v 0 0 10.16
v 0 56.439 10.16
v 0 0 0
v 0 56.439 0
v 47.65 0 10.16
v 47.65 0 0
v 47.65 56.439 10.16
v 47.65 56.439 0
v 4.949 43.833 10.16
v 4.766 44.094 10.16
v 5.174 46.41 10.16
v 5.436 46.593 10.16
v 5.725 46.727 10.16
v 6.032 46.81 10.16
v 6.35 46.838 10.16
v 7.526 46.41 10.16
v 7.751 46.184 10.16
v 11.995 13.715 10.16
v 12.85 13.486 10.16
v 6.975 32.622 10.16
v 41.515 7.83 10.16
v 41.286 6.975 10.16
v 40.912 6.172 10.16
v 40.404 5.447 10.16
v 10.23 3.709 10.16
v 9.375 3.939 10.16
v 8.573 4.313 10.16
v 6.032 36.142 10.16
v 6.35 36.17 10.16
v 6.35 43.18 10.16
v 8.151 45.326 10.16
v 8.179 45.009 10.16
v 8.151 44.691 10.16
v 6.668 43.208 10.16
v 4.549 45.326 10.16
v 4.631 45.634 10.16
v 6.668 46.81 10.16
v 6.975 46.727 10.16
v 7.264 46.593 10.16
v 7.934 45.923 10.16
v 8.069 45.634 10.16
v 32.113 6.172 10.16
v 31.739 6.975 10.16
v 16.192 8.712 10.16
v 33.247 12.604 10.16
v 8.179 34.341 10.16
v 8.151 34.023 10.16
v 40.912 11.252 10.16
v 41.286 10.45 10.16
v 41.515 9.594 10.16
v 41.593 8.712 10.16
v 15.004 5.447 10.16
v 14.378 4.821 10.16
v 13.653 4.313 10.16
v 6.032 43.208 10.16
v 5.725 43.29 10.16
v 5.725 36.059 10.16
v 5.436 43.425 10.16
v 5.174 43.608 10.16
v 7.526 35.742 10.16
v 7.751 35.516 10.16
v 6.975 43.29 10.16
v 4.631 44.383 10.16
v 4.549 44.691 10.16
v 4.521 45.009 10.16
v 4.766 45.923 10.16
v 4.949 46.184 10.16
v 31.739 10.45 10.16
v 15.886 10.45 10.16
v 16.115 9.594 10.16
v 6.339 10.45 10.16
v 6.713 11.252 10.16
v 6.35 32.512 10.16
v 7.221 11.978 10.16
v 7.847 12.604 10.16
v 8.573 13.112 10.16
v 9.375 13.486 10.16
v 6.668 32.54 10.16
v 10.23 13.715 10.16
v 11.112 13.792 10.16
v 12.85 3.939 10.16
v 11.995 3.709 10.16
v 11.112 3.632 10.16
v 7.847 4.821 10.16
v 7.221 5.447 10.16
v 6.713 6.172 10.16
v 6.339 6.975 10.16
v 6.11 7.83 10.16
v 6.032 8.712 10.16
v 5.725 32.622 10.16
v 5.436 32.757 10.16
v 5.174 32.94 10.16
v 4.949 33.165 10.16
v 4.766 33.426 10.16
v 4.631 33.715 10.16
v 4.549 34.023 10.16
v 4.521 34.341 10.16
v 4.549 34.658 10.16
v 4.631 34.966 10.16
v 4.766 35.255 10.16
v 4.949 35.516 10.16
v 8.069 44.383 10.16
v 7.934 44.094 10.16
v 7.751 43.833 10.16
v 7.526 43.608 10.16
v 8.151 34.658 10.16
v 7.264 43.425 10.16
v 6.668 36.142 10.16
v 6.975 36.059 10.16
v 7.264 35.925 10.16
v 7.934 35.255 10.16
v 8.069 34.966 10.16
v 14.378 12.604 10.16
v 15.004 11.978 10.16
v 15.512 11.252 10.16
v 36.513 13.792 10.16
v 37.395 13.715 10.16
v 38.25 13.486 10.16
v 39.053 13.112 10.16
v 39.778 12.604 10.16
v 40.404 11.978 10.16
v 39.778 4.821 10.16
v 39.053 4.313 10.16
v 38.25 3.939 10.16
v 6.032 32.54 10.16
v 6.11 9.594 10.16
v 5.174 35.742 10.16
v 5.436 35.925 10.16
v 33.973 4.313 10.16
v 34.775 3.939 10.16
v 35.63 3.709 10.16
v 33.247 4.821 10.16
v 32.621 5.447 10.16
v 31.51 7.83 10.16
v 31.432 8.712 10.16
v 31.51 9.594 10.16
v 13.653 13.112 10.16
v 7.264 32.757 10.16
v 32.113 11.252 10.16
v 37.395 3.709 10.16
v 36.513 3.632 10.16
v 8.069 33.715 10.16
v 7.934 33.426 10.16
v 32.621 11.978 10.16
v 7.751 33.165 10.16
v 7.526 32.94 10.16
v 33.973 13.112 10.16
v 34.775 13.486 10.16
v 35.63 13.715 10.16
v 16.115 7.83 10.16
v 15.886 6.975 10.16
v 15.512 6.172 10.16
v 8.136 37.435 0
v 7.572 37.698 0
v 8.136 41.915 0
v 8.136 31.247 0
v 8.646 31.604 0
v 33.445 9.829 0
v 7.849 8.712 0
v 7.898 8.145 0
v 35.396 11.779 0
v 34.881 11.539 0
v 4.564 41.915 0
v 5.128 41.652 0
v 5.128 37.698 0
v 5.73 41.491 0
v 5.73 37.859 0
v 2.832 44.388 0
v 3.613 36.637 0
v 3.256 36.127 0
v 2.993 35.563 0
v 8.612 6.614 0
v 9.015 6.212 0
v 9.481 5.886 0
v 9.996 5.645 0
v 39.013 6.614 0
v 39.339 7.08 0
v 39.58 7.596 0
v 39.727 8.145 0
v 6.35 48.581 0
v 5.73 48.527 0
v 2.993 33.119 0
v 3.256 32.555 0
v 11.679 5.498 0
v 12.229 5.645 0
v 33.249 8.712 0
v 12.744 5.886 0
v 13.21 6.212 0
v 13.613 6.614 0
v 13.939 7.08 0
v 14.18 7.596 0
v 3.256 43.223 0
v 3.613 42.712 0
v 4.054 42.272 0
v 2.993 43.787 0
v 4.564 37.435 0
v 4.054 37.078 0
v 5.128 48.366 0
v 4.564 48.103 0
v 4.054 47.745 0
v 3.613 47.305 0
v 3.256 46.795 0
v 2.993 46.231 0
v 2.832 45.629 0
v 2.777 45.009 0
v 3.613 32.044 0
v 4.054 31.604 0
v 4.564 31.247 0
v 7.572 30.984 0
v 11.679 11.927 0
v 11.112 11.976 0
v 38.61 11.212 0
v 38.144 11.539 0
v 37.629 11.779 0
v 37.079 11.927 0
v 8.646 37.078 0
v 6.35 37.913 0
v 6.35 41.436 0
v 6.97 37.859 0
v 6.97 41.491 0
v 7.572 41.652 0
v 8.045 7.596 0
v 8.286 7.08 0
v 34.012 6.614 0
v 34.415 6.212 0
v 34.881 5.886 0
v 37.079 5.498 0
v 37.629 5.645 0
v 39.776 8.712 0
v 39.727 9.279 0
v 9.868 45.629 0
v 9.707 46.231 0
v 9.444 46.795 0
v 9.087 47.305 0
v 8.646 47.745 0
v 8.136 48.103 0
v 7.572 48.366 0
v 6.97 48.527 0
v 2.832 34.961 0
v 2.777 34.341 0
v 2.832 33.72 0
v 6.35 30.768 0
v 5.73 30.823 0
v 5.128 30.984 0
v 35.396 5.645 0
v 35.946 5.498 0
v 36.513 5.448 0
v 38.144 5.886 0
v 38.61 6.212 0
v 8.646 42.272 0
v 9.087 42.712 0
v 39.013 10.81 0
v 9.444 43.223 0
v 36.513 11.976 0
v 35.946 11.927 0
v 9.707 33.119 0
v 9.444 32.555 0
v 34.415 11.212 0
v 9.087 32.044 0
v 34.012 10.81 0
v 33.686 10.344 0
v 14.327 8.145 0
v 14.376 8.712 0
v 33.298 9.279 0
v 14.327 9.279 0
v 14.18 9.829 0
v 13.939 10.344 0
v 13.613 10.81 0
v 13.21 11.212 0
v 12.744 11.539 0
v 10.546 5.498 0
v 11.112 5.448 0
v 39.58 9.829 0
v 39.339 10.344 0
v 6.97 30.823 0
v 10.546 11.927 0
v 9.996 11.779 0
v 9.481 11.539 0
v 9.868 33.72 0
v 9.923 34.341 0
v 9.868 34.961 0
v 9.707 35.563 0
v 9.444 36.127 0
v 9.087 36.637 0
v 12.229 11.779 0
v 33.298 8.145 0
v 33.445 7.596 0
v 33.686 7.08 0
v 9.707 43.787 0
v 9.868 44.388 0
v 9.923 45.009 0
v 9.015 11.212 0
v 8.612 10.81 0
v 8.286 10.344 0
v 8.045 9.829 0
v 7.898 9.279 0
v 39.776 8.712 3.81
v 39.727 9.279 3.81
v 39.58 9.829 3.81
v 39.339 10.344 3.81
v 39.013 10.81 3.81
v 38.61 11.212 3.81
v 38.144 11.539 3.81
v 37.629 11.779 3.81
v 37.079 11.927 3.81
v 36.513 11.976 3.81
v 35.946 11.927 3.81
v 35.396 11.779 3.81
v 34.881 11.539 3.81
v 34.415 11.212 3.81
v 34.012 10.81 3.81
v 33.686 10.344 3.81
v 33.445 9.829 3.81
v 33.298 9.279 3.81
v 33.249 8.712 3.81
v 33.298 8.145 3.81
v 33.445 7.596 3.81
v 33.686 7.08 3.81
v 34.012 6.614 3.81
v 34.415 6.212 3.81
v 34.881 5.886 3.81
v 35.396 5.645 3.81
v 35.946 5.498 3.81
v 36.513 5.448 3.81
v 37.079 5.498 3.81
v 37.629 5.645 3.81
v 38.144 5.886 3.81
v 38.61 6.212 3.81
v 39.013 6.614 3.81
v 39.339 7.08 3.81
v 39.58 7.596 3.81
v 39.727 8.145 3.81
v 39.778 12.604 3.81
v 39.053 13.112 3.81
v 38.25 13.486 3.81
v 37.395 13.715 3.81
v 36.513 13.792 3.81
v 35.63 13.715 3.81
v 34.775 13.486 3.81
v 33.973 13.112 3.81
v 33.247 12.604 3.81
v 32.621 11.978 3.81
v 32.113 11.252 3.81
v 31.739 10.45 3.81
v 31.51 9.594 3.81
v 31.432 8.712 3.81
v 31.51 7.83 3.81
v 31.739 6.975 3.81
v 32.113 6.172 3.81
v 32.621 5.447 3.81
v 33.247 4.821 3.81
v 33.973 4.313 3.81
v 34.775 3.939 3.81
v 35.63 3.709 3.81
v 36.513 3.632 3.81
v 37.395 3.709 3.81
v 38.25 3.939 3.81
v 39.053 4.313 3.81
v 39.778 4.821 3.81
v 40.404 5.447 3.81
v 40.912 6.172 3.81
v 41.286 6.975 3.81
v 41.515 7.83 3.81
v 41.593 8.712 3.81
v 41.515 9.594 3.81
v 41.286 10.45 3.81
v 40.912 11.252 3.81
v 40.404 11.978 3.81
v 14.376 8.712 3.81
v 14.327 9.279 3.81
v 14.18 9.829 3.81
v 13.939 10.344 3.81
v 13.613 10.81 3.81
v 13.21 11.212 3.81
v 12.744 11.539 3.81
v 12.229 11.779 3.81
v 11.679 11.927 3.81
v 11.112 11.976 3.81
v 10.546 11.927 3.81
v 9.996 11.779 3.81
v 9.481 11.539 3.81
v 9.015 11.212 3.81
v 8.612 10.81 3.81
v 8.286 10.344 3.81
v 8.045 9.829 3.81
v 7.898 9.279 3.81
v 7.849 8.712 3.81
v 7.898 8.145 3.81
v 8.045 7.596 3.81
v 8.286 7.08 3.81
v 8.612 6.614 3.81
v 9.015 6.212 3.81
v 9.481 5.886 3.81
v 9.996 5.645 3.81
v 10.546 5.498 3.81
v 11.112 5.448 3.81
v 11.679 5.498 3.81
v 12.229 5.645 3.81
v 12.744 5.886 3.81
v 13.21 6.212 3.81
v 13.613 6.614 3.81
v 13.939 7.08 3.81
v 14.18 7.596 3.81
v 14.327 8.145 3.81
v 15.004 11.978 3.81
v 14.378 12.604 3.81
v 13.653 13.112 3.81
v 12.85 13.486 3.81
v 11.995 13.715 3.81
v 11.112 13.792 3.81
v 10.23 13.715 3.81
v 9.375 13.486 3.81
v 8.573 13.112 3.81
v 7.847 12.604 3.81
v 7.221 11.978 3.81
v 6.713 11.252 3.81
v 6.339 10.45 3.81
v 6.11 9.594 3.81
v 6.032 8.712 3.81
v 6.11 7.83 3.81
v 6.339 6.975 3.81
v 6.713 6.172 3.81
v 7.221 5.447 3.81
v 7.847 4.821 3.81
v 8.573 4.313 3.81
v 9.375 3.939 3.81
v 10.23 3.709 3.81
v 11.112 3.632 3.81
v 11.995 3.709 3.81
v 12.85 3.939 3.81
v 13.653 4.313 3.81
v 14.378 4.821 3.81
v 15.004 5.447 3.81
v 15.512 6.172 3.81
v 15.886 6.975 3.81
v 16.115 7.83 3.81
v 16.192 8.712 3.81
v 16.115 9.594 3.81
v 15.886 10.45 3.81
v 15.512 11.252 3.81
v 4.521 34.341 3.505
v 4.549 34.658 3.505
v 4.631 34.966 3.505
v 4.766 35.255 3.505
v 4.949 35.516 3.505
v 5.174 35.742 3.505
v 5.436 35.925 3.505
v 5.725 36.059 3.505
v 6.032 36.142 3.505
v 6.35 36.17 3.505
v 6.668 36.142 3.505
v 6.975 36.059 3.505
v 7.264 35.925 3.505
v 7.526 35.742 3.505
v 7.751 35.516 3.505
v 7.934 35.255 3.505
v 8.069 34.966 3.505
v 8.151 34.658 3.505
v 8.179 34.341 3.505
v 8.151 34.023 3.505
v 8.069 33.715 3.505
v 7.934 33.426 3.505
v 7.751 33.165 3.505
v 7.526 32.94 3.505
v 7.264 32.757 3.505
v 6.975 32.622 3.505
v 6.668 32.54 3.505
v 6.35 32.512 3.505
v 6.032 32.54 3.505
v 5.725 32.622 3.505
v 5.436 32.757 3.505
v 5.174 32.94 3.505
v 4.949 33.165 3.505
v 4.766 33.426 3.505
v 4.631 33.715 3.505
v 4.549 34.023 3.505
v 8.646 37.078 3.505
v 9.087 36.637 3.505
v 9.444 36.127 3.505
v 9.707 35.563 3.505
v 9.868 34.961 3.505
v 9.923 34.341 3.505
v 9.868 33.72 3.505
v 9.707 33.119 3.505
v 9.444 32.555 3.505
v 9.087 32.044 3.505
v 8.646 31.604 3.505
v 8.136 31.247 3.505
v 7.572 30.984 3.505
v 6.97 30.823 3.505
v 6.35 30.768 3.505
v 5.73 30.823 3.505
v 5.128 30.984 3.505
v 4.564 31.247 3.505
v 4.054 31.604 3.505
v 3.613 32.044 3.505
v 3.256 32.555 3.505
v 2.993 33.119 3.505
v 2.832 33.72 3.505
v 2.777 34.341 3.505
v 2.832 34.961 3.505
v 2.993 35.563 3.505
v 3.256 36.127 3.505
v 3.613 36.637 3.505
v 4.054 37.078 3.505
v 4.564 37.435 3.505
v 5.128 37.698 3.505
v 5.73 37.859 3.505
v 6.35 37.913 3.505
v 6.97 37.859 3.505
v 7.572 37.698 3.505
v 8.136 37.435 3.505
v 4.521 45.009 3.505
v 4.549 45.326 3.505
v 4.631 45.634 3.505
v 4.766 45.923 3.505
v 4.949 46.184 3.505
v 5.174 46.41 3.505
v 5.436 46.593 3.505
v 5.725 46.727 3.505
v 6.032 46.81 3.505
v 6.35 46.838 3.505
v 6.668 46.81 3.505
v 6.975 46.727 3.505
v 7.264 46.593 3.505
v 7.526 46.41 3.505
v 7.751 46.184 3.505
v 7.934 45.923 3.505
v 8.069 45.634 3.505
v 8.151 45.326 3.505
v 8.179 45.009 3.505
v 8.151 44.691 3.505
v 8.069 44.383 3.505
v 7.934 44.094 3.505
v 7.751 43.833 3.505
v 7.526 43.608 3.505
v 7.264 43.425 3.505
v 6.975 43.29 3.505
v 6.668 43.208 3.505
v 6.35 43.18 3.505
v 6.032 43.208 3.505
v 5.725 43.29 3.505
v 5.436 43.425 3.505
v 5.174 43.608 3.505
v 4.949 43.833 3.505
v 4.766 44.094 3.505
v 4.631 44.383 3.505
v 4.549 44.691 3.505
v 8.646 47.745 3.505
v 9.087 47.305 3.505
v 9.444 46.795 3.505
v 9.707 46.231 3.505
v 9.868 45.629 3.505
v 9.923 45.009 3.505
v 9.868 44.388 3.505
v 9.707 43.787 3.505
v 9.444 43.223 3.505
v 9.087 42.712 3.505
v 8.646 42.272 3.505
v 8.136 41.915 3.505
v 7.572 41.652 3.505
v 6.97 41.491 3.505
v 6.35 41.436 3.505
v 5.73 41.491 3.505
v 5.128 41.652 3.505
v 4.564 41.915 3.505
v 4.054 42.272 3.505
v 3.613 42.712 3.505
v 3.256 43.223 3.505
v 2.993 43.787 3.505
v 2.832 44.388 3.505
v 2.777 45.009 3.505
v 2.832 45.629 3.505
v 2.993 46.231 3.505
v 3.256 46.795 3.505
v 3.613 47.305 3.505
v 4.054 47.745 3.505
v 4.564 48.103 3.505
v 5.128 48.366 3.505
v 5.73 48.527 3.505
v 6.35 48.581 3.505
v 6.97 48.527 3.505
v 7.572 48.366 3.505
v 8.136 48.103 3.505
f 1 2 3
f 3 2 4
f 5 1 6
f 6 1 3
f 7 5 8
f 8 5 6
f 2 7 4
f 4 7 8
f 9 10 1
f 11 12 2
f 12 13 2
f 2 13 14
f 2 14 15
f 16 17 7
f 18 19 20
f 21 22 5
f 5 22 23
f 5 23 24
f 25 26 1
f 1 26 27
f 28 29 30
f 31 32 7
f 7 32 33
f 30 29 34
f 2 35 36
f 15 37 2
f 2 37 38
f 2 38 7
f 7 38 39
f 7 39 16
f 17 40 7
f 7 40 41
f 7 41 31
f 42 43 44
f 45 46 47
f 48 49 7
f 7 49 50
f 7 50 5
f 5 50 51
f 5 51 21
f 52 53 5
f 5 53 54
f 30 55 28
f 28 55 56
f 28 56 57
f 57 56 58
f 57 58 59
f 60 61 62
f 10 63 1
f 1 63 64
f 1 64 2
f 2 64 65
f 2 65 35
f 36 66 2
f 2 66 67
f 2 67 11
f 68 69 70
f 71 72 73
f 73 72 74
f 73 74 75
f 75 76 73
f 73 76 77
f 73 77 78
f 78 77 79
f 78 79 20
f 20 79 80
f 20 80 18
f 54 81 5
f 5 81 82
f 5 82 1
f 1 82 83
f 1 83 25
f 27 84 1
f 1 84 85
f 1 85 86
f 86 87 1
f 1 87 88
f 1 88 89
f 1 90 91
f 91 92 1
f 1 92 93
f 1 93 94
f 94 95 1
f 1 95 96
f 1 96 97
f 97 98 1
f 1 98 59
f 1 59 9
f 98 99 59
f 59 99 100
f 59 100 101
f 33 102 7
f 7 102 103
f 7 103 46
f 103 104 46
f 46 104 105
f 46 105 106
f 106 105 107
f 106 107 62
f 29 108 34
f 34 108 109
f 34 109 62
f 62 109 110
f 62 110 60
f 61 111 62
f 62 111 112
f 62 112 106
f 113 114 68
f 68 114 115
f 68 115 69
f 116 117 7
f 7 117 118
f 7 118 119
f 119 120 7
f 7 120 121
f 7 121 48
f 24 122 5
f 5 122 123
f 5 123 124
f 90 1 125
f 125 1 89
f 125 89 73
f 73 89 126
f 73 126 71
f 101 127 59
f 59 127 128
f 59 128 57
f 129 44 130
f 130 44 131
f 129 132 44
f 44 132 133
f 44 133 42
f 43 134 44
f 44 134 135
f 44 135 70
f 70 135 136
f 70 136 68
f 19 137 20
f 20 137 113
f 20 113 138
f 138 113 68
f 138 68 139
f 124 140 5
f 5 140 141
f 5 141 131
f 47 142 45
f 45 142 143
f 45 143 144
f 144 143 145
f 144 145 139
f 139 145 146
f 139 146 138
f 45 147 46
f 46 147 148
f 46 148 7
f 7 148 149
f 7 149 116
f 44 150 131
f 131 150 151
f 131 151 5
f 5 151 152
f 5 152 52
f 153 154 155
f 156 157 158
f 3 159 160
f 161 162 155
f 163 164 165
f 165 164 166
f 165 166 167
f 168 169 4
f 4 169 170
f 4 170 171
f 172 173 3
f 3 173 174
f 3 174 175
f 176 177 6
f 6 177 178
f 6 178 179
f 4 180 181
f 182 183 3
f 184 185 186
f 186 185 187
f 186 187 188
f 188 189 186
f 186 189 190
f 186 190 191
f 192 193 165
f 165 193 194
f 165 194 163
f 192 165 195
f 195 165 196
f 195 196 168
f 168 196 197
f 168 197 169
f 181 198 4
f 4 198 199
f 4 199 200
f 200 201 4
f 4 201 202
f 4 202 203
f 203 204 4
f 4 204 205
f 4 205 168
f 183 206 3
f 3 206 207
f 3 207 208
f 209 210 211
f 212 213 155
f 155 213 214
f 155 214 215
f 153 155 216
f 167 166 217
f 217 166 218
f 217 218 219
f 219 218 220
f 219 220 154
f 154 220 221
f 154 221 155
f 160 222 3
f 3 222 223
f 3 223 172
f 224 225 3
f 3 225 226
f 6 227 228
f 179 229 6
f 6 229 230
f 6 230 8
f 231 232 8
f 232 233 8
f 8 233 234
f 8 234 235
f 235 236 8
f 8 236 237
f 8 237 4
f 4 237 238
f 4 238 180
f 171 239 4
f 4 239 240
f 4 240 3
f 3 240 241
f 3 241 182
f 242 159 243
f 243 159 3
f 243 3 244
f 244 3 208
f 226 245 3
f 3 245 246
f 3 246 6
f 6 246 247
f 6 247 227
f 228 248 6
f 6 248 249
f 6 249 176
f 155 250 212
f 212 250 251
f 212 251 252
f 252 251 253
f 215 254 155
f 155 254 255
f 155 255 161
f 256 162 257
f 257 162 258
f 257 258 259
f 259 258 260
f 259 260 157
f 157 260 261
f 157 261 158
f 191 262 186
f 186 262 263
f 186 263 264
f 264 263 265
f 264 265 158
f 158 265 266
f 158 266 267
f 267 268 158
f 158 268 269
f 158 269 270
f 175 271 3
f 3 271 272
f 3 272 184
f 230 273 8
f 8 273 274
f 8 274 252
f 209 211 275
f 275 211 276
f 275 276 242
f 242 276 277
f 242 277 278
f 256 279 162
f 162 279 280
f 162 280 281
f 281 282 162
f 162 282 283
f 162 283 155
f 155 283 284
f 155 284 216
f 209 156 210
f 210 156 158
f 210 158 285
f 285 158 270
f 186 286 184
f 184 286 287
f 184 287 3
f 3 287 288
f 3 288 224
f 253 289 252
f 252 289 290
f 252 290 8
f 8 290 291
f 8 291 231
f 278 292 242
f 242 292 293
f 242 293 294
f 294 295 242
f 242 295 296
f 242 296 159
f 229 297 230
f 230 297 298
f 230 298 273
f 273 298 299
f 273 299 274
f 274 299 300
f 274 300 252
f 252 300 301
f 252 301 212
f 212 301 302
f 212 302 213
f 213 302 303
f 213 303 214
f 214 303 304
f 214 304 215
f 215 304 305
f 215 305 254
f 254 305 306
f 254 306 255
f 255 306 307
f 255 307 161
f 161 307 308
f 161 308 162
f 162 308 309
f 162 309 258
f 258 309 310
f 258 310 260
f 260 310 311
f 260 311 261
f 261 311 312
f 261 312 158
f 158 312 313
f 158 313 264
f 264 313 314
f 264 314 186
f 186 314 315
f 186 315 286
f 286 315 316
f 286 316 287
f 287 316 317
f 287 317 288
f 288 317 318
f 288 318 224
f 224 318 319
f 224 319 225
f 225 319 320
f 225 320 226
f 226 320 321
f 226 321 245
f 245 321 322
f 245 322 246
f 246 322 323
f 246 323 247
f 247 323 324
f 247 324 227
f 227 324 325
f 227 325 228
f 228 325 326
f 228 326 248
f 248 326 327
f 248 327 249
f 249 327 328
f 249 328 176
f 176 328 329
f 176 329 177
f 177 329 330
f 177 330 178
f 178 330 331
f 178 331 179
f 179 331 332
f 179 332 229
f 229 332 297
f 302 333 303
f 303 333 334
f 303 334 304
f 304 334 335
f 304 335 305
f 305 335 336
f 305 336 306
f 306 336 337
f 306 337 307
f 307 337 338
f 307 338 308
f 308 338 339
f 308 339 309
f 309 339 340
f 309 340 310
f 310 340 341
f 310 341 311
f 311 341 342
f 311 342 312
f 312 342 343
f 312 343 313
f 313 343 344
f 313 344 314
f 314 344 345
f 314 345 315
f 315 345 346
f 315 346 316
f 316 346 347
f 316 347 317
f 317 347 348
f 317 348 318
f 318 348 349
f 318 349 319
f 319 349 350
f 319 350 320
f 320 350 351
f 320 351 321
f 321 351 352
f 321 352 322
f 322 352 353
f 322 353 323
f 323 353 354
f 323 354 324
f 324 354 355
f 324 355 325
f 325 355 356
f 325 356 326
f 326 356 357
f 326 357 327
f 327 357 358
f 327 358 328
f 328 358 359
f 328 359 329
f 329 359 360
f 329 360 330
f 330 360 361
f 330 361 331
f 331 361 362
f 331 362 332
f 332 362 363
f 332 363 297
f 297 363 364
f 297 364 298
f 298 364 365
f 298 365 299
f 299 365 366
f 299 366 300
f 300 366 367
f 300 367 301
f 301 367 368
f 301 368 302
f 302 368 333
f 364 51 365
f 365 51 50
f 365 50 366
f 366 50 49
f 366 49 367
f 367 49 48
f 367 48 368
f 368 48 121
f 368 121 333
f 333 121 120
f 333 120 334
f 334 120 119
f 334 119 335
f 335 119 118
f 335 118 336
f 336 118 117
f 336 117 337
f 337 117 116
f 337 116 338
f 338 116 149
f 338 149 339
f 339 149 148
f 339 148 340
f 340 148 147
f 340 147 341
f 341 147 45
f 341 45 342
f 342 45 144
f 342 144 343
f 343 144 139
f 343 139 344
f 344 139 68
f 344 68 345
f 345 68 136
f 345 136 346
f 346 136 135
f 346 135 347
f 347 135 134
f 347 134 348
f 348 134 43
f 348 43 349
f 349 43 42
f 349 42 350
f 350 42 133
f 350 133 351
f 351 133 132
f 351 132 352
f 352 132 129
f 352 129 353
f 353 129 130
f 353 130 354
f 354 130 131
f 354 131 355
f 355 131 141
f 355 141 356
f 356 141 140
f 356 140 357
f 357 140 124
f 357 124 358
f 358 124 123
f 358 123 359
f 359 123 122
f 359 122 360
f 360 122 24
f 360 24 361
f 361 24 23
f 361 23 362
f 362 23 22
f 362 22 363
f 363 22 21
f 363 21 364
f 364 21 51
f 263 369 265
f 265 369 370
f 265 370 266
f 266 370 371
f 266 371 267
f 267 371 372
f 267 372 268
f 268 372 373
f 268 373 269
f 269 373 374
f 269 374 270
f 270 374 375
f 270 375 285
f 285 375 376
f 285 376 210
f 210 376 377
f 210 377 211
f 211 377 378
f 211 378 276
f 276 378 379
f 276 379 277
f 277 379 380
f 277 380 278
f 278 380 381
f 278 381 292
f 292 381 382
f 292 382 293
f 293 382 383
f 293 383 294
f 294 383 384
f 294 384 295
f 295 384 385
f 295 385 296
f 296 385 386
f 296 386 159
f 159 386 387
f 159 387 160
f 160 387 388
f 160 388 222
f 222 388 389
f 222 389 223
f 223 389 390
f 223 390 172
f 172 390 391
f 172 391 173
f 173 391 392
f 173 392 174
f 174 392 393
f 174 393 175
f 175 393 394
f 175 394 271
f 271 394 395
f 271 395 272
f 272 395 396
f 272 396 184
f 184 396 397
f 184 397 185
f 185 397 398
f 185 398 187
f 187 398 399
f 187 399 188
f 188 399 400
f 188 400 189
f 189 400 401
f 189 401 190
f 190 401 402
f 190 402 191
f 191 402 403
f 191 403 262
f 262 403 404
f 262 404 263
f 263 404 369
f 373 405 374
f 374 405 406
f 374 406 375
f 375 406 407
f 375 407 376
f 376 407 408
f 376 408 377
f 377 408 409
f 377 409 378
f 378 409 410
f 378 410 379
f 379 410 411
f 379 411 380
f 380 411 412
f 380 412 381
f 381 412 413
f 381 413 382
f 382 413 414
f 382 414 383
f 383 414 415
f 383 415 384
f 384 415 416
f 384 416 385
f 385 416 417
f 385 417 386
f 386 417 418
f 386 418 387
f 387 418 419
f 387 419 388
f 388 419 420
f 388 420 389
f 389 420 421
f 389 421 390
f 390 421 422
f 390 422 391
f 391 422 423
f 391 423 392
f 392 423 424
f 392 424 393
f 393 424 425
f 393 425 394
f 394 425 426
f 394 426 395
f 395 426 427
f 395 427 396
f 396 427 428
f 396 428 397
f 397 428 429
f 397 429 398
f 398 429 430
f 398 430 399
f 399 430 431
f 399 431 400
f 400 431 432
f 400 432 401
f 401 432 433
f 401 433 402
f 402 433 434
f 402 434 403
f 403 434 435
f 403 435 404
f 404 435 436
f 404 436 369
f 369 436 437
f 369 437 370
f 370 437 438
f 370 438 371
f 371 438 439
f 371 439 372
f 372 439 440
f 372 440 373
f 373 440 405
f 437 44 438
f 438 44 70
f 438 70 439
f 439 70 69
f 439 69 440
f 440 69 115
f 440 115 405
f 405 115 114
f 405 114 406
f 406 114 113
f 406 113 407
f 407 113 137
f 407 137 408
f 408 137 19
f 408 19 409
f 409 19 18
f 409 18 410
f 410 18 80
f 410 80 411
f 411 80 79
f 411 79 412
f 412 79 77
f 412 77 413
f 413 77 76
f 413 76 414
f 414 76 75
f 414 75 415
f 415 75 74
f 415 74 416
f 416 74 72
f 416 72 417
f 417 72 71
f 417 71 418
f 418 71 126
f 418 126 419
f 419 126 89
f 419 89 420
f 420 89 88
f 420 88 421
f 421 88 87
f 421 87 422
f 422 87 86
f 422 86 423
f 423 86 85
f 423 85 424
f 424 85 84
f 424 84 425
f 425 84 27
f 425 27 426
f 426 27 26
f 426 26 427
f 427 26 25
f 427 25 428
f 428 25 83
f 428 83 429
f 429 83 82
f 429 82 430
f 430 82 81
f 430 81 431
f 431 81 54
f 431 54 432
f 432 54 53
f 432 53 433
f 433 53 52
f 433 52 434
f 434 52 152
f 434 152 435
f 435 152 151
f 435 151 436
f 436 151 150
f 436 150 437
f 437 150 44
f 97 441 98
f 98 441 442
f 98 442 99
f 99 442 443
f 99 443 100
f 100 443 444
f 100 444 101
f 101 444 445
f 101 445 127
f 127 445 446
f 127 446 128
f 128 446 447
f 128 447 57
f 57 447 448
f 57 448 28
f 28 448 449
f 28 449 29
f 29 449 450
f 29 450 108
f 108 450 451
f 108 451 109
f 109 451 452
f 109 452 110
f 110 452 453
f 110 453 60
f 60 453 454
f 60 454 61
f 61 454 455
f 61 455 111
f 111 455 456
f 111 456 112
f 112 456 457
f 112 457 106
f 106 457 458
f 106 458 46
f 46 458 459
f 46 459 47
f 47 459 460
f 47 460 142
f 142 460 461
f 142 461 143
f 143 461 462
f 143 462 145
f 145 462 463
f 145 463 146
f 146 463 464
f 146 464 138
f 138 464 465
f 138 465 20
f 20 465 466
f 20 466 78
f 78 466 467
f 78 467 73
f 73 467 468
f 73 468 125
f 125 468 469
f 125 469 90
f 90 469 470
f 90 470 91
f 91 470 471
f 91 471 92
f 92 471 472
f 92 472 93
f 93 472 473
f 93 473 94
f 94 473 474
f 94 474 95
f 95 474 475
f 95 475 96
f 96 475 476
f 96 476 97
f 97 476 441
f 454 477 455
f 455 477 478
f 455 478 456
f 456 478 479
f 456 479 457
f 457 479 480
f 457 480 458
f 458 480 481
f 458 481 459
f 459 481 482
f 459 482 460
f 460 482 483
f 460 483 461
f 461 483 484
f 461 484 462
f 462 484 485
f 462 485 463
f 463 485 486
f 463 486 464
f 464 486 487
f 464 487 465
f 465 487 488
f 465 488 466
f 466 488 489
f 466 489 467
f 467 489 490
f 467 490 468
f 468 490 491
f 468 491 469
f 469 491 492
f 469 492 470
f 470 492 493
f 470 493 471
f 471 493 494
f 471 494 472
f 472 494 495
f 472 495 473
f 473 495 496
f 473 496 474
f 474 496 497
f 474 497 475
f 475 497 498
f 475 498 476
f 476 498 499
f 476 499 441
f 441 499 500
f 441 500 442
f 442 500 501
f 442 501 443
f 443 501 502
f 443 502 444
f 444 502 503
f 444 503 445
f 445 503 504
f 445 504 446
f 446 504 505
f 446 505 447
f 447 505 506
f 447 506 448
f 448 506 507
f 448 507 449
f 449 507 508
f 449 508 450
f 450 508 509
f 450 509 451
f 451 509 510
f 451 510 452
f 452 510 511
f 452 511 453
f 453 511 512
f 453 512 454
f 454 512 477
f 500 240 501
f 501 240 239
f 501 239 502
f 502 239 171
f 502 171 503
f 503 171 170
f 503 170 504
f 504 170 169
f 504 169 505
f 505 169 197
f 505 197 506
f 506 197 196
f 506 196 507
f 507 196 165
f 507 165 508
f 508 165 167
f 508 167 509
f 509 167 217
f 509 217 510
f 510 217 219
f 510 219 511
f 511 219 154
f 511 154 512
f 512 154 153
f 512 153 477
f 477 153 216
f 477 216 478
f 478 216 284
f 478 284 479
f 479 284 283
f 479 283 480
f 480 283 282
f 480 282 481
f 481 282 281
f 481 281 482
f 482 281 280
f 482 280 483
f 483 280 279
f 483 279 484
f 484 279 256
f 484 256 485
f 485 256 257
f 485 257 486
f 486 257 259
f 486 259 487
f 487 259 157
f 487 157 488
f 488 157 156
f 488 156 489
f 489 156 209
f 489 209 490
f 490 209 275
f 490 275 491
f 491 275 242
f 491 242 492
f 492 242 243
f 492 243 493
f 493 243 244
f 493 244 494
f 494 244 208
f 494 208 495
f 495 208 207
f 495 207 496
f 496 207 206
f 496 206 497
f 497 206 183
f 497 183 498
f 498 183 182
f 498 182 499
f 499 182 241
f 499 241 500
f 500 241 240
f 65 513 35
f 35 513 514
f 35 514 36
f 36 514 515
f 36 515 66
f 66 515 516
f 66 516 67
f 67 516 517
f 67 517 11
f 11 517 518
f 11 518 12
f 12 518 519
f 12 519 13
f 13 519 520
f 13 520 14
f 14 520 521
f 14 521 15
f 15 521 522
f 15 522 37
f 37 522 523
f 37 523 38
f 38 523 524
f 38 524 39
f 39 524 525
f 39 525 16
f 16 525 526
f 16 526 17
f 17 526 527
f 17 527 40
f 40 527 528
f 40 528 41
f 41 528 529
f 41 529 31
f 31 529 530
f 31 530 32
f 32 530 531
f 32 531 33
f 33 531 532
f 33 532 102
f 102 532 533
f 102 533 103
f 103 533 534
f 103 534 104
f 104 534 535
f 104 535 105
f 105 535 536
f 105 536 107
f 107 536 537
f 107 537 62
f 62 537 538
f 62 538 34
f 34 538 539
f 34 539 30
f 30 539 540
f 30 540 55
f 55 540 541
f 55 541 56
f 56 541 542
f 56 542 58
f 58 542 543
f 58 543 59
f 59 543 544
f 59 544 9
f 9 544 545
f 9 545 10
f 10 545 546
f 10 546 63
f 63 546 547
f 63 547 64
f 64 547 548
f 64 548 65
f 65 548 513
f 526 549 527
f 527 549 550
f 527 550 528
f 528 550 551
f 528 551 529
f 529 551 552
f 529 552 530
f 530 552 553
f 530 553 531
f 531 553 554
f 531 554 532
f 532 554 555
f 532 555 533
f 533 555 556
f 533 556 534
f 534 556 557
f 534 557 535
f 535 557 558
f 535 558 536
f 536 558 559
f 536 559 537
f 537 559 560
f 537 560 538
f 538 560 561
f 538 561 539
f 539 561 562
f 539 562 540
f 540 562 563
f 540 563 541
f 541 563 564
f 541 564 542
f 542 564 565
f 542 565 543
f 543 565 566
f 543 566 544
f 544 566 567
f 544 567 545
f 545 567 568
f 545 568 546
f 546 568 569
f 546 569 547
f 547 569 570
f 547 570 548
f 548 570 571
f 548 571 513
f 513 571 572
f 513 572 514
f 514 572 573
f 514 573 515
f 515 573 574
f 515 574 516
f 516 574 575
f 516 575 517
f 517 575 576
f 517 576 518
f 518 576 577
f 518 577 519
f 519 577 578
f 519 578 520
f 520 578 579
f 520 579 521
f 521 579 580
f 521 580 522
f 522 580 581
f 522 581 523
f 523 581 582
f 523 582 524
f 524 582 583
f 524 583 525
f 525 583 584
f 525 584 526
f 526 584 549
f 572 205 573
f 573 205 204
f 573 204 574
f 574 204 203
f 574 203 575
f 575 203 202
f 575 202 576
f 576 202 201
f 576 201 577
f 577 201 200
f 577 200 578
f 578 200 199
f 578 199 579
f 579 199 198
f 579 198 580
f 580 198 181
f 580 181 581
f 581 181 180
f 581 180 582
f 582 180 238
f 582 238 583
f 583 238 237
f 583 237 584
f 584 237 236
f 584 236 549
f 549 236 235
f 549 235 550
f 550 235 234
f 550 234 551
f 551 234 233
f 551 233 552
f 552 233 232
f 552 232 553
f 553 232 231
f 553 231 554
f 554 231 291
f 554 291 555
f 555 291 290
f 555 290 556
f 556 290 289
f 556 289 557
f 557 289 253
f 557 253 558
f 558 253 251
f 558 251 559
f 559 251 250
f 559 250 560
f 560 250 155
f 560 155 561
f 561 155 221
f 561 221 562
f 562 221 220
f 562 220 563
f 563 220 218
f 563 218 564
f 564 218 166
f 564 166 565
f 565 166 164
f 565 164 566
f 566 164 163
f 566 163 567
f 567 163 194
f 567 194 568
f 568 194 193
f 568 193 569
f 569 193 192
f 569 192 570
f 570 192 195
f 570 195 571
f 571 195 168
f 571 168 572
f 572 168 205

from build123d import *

# Parameters (mm, degrees)
SKETCH1_W                                        = 47.6504
SKETCH1_H                                        = 56.4388
BOSS_EXTRUDE1_DEPTH                              = 10.16
CBORE_FOR_1_4_BUTTON_HEAD_CAP_SCREW1_D           = 6.5278
CBORE_FOR_1_4_BUTTON_HEAD_CAP_SCREW1_CBORE_D     = 10.16
CBORE_FOR_1_4_BUTTON_HEAD_CAP_SCREW1_CBORE_DEPTH = 6.35
CBORE_FOR_6_SOCKET_HEAD_CAP_SCREW1_D             = 3.6576
CBORE_FOR_6_SOCKET_HEAD_CAP_SCREW1_CBORE_D       = 7.14502
CBORE_FOR_6_SOCKET_HEAD_CAP_SCREW1_CBORE_DEPTH   = 3.5052


with BuildPart() as part:
    # Sketch1 → Boss-Extrude1 (new body)
    with BuildSketch(Plane.XY):
        with Locations((23.8252, 28.2194)):
            Rectangle(SKETCH1_W, SKETCH1_H)
    extrude(amount=BOSS_EXTRUDE1_DEPTH)

    # CBORE for 1/4 Button Head Cap Screw1 (through all)
    with Locations(Plane.XY.offset(10.16)):
        with Locations((36.5125, 8.7122), (11.1125, 8.7122)):
            CounterBoreHole(CBORE_FOR_1_4_BUTTON_HEAD_CAP_SCREW1_D / 2, CBORE_FOR_1_4_BUTTON_HEAD_CAP_SCREW1_CBORE_D / 2, CBORE_FOR_1_4_BUTTON_HEAD_CAP_SCREW1_CBORE_DEPTH)

    # CBORE for #6 Socket Head Cap Screw1 (through all)
    with Locations(Plane(origin=(0, 0, 0), x_dir=(-1, 0, 0), z_dir=(0, 0, -1))):
        with Locations((-6.35, 34.3408), (-6.35, 45.0088)):
            CounterBoreHole(CBORE_FOR_6_SOCKET_HEAD_CAP_SCREW1_D / 2, CBORE_FOR_6_SOCKET_HEAD_CAP_SCREW1_CBORE_D / 2, CBORE_FOR_6_SOCKET_HEAD_CAP_SCREW1_CBORE_DEPTH)


solid = part.part
